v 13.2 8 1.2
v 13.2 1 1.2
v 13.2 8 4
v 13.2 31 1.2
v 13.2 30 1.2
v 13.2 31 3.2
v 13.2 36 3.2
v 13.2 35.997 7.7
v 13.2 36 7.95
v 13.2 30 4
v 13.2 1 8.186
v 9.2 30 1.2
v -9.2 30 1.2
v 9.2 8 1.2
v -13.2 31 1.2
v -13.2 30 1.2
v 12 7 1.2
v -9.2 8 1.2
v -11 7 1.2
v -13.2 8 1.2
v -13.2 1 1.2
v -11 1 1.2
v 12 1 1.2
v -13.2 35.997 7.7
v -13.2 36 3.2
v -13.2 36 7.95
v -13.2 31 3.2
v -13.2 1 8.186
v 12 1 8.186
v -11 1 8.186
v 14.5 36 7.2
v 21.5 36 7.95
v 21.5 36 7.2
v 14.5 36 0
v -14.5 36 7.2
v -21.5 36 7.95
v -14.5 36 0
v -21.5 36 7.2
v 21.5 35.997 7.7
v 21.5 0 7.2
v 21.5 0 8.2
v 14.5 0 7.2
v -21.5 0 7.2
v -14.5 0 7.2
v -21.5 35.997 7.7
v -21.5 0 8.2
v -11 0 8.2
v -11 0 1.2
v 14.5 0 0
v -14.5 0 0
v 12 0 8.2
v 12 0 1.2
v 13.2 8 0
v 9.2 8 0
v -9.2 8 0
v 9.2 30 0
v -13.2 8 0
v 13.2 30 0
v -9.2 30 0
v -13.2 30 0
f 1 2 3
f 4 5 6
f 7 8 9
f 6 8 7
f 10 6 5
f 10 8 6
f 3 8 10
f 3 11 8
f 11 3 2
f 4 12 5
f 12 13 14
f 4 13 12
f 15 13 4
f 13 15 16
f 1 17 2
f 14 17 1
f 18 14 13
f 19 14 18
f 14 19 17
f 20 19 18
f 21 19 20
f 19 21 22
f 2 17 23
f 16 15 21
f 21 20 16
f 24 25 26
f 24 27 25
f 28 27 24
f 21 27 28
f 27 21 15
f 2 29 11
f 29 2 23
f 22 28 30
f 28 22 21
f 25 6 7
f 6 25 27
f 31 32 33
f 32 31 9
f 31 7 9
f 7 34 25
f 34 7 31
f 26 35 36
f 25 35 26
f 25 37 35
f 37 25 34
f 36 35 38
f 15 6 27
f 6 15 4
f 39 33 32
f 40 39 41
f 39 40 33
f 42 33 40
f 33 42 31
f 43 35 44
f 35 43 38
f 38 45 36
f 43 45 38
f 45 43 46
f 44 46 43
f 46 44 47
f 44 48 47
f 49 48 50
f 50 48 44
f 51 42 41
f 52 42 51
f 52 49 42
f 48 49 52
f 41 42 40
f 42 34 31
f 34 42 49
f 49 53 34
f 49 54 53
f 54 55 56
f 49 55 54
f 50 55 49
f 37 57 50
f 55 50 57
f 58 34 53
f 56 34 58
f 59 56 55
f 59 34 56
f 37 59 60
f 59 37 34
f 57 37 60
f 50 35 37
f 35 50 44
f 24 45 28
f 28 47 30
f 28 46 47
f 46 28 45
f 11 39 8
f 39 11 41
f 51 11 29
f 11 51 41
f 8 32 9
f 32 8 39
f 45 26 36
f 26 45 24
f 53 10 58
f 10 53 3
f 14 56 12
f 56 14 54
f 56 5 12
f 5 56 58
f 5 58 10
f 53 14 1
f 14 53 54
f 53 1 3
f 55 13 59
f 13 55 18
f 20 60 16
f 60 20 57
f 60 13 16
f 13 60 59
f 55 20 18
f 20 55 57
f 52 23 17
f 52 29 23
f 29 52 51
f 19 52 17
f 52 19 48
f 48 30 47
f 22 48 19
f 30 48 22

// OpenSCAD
slot_w = 41+2;
slot_d = 44-10+2;
slot_w2 = 29;
slot_h1 = 7;

esp_w = 26;
esp_d = 35;


difference() {
	
    union() {
        translate([-slot_w/2, 0, slot_h1+0.2])
        cube([slot_w, slot_d, 1.0]);

        translate([-slot_w2/2, 0, 0])
        cube([slot_w2, slot_d, 1.0+slot_h1]);



    }

    // gornja kosina
    translate([0, 0, slot_h1+0.2+1.0])
    rotate([-atan2(0.5, slot_d), 0, 0])
    translate([-slot_w/2, 0, 0])
    cube([slot_w, slot_d, 2.0]);


    translate([-(esp_w+0.4)/2, 1, 1.2])
    difference() {
        cube([esp_w+0.4, esp_d+1, 8]);

        translate([0, esp_d-5, 0])
        cube([esp_w+0.4, 5, 2]);
    }


    translate([-4/2+11.2, 1.0+7, -1])
    cube([4, 22, 5]);

    translate([-4/2-11.2, 1.0+7, -1])
    cube([4, 22, 5]);


    translate([-14/2-4, -1, 1.2])
    cube([14+5+4, 8, 8]);

}
